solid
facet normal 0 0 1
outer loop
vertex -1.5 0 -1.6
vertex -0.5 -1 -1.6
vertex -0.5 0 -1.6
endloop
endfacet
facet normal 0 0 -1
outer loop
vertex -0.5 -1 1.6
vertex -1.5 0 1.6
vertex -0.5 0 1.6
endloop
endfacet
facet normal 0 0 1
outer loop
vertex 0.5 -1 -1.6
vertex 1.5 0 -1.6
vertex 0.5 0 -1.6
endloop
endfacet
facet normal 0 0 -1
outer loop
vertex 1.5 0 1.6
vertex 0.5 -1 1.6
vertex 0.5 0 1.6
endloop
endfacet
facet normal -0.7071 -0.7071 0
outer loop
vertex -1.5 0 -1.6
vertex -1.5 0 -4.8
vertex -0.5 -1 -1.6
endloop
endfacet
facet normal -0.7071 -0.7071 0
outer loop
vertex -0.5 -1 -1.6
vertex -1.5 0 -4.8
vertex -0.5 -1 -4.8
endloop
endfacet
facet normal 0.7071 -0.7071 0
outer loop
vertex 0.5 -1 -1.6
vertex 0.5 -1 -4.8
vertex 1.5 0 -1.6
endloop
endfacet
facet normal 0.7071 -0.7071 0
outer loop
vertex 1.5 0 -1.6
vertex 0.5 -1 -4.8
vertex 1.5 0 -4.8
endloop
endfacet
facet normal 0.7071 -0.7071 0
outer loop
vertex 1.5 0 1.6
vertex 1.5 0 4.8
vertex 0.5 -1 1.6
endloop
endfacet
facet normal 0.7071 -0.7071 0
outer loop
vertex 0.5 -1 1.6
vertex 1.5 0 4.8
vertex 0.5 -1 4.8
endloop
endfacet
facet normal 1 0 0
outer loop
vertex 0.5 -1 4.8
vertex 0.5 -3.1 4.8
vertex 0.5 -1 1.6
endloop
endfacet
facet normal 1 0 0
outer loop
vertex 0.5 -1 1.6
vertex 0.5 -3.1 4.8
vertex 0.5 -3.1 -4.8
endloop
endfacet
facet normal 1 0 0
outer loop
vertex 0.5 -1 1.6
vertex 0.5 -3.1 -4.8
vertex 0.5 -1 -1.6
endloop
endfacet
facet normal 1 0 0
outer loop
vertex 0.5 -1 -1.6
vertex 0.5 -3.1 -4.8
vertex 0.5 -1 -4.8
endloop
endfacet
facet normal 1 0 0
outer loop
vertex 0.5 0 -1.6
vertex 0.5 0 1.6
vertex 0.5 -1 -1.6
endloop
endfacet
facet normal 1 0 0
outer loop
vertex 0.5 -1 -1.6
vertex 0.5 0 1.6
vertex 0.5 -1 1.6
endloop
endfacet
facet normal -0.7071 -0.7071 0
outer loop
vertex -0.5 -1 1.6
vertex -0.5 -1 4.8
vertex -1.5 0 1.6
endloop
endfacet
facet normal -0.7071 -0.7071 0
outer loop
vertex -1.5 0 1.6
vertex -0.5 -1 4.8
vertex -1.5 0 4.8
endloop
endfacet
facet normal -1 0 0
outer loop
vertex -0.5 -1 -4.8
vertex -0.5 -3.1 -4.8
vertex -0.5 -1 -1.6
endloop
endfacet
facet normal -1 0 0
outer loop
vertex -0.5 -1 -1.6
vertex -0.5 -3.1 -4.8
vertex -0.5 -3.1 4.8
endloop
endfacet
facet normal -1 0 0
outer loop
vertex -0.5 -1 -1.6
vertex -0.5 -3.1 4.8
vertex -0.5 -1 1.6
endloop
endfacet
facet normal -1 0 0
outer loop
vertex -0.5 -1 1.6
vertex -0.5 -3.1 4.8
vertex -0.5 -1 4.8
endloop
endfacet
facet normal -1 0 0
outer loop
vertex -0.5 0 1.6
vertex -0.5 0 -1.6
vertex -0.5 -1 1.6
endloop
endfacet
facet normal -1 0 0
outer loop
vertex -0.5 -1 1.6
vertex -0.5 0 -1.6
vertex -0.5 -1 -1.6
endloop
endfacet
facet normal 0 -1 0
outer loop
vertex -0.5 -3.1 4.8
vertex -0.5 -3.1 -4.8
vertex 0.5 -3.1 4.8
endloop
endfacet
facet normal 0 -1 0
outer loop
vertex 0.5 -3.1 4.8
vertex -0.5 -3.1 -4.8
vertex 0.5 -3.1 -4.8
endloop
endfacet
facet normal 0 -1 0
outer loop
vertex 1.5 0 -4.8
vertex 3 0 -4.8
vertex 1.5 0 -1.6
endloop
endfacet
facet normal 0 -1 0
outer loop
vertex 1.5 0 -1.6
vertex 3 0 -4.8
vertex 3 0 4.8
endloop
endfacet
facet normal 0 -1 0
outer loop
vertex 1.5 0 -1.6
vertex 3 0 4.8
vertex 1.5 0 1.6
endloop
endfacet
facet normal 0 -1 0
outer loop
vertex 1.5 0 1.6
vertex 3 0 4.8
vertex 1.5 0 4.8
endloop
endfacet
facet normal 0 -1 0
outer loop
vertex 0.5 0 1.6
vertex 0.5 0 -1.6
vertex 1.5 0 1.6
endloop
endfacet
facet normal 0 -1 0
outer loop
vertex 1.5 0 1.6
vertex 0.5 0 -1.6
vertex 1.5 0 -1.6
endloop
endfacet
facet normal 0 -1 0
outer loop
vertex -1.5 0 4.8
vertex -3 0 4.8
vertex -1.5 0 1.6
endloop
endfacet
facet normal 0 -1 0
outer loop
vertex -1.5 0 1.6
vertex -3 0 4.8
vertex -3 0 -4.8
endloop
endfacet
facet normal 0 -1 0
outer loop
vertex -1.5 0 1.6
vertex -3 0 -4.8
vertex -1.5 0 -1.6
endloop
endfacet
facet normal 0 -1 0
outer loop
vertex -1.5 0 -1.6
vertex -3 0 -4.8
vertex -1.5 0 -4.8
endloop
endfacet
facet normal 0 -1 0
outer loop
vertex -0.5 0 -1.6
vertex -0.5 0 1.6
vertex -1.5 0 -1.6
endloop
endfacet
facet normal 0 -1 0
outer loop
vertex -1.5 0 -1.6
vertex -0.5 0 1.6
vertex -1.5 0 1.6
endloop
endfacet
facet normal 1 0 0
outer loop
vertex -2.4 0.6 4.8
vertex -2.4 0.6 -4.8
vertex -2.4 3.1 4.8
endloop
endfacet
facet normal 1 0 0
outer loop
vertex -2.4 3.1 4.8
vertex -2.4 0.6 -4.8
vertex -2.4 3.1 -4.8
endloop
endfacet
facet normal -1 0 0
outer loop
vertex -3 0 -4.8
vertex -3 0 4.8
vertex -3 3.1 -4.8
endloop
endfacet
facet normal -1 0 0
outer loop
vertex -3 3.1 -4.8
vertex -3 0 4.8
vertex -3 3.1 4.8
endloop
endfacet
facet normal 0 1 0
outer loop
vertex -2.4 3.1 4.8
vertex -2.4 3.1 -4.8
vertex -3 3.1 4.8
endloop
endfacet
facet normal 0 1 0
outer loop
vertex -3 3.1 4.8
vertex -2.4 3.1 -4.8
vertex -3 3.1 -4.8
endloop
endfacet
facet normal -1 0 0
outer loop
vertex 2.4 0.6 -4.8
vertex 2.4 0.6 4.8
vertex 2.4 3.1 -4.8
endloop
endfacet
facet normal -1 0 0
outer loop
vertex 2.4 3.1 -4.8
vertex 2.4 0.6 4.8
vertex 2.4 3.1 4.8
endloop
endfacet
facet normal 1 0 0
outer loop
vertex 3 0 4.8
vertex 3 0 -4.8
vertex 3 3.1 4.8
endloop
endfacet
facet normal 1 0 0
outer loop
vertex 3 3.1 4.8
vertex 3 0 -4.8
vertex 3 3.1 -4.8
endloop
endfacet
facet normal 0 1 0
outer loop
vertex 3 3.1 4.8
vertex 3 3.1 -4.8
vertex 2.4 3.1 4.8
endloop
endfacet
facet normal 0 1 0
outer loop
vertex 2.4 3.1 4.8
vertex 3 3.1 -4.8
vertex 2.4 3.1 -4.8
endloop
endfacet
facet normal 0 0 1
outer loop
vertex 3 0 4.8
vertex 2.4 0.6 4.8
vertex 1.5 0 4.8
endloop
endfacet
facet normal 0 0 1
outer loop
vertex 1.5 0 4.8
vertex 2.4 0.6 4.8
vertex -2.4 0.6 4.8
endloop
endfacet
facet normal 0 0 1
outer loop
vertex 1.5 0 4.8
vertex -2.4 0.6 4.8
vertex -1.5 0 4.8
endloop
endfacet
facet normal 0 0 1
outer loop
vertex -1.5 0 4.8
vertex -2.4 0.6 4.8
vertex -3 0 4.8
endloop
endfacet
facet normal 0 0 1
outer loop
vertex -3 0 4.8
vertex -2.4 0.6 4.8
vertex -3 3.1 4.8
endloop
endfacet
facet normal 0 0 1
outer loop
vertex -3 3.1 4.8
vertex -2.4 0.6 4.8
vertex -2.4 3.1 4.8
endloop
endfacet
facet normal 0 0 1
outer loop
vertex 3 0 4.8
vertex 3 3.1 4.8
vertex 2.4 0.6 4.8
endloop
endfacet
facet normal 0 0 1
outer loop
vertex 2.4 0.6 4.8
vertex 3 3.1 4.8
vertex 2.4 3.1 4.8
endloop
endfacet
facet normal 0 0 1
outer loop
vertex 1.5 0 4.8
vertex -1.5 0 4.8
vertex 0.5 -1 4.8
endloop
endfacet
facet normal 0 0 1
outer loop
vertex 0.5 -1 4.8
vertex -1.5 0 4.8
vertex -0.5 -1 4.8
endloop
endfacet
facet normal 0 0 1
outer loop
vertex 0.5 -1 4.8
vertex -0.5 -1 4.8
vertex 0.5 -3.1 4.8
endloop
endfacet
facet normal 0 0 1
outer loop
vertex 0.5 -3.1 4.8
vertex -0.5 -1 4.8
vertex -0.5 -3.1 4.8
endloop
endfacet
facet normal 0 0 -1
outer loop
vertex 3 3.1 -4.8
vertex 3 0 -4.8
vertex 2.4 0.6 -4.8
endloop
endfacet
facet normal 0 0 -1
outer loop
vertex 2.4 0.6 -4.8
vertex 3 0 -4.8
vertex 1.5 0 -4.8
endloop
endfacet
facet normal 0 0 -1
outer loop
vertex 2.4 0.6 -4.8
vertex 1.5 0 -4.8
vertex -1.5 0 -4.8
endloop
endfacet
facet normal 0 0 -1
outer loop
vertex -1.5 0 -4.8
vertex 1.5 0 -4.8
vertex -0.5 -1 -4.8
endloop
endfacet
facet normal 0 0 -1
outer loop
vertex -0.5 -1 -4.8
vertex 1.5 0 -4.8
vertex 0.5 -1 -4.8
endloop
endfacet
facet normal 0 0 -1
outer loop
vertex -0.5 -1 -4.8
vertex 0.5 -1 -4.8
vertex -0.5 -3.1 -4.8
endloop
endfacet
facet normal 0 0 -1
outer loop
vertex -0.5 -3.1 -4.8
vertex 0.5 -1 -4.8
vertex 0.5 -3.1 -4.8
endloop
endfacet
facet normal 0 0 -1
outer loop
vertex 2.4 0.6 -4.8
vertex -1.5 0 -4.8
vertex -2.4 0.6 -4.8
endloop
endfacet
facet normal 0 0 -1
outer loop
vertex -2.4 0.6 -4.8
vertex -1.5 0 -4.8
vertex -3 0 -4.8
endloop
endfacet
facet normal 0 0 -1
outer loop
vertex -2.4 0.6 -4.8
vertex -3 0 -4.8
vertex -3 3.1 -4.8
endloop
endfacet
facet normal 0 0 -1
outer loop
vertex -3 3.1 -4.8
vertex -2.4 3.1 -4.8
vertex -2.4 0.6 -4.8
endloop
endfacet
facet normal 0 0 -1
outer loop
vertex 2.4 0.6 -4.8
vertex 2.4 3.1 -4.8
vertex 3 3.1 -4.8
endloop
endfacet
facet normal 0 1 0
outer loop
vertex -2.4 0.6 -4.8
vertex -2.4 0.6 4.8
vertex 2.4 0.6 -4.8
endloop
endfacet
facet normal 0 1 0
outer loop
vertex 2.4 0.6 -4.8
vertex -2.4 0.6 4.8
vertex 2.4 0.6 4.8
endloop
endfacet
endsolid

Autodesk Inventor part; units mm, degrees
ref_plane "YZ Plane" through (0, 0, 0) normal (1, 0, 0) x (0, 1, 0)
ref_plane "XZ Plane" through (0, 0, 0) normal (0, 1, 0) x (-1, 0, 0)
ref_plane "XY Plane" through (0, 0, 0) normal (0, 0, 1) x (1, 0, 0)
sketch "스케치1" plane through (0, 0, 0) normal (0, 1, 0) x (-1, 0, 0)
  line L0 (-2.4, 4.8) -> (2.4, 4.8)
  line L1 (2.4, 4.8) -> (2.4, -4.8)
  line L2 (2.4, -4.8) -> (-2.4, -4.8)
  line L3 (-2.4, -4.8) -> (-2.4, 4.8)
  line L4 (-2.4, 4.8) -> (2.4, -4.8) construction
  line L5 (2.4, 4.8) -> (-2.4, -4.8) construction
  point P0 (0, 0)
  dimension "d0" = 4.8
  dimension "d1" = 9.6
extrude "돌출1" add sketch "스케치1" along normal blind 0.6
sketch "스케치2" plane through (0, 0, 0) normal (0, -1, 0) x (1, 0, 0)
  line L0 (2.4, -4.8) -> (-2.4, -4.8) projected
  line L1 (2.4, 4.8) -> (2.4, -4.8) projected
  line L2 (-2.4, 4.8) -> (2.4, 4.8) projected
  line L3 (-2.4, -4.8) -> (-2.4, 4.8) projected
  line L4 (2.4, 4.8) -> (3, 4.8)
  line L5 (3, 4.8) -> (3, -4.8)
  line L6 (3, -4.8) -> (2.4, -4.8)
  line L7 (2.4, -4.8) -> (2.4, 4.8)
  line L8 (-2.4, -4.8) -> (-2.4, 4.8) projected
  line L9 (-2.4, 4.8) -> (-3, 4.8)
  line L10 (-3, 4.8) -> (-3, -4.8)
  line L11 (-3, -4.8) -> (-2.4, -4.8)
  line L12 (-2.4, -4.8) -> (-2.4, 4.8)
  point P0 (0, 0)
  dimension "d4" = 0.6
  dimension "d5" = 0.6
extrude "돌출2" add sketch "스케치2" against normal blind 3.1 contours L1 L4 L5 L6 | L11 L10 L9 L3
sketch "스케치3" plane through (0, 0, 0) normal (0, -1, 0) x (1, 0, 0)
  line L0 (2.4, -4.8) -> (-2.4, -4.8) projected
  line L1 (-0.5, 4.8) -> (0.5, 4.8)
  line L2 (0.5, 4.8) -> (0.5, -4.8)
  line L3 (0.5, -4.8) -> (-0.5, -4.8)
  line L4 (-0.5, -4.8) -> (-0.5, 4.8)
  line L5 (-0.5, 4.8) -> (0.5, -4.8) construction
  line L6 (0.5, 4.8) -> (-0.5, -4.8) construction
  point P0 (0, 0)
  dimension "d8" = 1
extrude "돌출3" add sketch "스케치3" along normal blind 3.1
chamfer "모따기1" distance 1 angle 45 2 edges at (-0.5, 0, 0) (0.5, 0, 0)
sketch "스케치4" plane through (0, -3.1, 0) normal (0, -1, 0) x (1, 0, 0)
  line L0 (1.5, 4.8) -> (0.5, 4.8) projected
  line L1 (0.5, 4.8) -> (0.5, -4.8) projected
  line L2 (0.5, -4.8) -> (1.5, -4.8) projected
  line L3 (1.5, -4.8) -> (1.5, 4.8) projected
  line L4 (-0.5, 4.8) -> (-0.5, -4.8) projected
  line L5 (-0.5, -4.8) -> (0.5, -4.8) projected
  line L6 (0.5, -4.8) -> (0.5, 4.8) projected
  line L7 (0.5, 4.8) -> (-0.5, 4.8) projected
  line L8 (-1.5, -4.8) -> (-0.5, -4.8) projected
  line L9 (-0.5, -4.8) -> (-0.5, 4.8) projected
  line L10 (-0.5, 4.8) -> (-1.5, 4.8) projected
  line L11 (-1.5, 4.8) -> (-1.5, -4.8) projected
  line L12 (-1.5, 1.6) -> (1.5, 1.6)
  line L13 (1.5, 1.6) -> (1.5, -1.6)
  line L14 (1.5, -1.6) -> (-1.5, -1.6)
  line L15 (-1.5, -1.6) -> (-1.5, 1.6)
  line L16 (-1.5, 1.6) -> (1.5, -1.6) construction
  line L17 (1.5, 1.6) -> (-1.5, -1.6) construction
  point P0 (0, 0)
  point P1 (-0.5, -1.6)
  point P2 (-0.5, 1.6)
  point P3 (0.5, -1.6)
  point P4 (0.5, 1.6)
  dimension "d14" = 3.2
extrude "돌출4" cut sketch "스케치4" against normal up to surface (3.1 mm away) contours L3 L14 L1 L12 | L4 L14 L11 L12
properties part number "endcap_4mm_2ea_addon_large"
